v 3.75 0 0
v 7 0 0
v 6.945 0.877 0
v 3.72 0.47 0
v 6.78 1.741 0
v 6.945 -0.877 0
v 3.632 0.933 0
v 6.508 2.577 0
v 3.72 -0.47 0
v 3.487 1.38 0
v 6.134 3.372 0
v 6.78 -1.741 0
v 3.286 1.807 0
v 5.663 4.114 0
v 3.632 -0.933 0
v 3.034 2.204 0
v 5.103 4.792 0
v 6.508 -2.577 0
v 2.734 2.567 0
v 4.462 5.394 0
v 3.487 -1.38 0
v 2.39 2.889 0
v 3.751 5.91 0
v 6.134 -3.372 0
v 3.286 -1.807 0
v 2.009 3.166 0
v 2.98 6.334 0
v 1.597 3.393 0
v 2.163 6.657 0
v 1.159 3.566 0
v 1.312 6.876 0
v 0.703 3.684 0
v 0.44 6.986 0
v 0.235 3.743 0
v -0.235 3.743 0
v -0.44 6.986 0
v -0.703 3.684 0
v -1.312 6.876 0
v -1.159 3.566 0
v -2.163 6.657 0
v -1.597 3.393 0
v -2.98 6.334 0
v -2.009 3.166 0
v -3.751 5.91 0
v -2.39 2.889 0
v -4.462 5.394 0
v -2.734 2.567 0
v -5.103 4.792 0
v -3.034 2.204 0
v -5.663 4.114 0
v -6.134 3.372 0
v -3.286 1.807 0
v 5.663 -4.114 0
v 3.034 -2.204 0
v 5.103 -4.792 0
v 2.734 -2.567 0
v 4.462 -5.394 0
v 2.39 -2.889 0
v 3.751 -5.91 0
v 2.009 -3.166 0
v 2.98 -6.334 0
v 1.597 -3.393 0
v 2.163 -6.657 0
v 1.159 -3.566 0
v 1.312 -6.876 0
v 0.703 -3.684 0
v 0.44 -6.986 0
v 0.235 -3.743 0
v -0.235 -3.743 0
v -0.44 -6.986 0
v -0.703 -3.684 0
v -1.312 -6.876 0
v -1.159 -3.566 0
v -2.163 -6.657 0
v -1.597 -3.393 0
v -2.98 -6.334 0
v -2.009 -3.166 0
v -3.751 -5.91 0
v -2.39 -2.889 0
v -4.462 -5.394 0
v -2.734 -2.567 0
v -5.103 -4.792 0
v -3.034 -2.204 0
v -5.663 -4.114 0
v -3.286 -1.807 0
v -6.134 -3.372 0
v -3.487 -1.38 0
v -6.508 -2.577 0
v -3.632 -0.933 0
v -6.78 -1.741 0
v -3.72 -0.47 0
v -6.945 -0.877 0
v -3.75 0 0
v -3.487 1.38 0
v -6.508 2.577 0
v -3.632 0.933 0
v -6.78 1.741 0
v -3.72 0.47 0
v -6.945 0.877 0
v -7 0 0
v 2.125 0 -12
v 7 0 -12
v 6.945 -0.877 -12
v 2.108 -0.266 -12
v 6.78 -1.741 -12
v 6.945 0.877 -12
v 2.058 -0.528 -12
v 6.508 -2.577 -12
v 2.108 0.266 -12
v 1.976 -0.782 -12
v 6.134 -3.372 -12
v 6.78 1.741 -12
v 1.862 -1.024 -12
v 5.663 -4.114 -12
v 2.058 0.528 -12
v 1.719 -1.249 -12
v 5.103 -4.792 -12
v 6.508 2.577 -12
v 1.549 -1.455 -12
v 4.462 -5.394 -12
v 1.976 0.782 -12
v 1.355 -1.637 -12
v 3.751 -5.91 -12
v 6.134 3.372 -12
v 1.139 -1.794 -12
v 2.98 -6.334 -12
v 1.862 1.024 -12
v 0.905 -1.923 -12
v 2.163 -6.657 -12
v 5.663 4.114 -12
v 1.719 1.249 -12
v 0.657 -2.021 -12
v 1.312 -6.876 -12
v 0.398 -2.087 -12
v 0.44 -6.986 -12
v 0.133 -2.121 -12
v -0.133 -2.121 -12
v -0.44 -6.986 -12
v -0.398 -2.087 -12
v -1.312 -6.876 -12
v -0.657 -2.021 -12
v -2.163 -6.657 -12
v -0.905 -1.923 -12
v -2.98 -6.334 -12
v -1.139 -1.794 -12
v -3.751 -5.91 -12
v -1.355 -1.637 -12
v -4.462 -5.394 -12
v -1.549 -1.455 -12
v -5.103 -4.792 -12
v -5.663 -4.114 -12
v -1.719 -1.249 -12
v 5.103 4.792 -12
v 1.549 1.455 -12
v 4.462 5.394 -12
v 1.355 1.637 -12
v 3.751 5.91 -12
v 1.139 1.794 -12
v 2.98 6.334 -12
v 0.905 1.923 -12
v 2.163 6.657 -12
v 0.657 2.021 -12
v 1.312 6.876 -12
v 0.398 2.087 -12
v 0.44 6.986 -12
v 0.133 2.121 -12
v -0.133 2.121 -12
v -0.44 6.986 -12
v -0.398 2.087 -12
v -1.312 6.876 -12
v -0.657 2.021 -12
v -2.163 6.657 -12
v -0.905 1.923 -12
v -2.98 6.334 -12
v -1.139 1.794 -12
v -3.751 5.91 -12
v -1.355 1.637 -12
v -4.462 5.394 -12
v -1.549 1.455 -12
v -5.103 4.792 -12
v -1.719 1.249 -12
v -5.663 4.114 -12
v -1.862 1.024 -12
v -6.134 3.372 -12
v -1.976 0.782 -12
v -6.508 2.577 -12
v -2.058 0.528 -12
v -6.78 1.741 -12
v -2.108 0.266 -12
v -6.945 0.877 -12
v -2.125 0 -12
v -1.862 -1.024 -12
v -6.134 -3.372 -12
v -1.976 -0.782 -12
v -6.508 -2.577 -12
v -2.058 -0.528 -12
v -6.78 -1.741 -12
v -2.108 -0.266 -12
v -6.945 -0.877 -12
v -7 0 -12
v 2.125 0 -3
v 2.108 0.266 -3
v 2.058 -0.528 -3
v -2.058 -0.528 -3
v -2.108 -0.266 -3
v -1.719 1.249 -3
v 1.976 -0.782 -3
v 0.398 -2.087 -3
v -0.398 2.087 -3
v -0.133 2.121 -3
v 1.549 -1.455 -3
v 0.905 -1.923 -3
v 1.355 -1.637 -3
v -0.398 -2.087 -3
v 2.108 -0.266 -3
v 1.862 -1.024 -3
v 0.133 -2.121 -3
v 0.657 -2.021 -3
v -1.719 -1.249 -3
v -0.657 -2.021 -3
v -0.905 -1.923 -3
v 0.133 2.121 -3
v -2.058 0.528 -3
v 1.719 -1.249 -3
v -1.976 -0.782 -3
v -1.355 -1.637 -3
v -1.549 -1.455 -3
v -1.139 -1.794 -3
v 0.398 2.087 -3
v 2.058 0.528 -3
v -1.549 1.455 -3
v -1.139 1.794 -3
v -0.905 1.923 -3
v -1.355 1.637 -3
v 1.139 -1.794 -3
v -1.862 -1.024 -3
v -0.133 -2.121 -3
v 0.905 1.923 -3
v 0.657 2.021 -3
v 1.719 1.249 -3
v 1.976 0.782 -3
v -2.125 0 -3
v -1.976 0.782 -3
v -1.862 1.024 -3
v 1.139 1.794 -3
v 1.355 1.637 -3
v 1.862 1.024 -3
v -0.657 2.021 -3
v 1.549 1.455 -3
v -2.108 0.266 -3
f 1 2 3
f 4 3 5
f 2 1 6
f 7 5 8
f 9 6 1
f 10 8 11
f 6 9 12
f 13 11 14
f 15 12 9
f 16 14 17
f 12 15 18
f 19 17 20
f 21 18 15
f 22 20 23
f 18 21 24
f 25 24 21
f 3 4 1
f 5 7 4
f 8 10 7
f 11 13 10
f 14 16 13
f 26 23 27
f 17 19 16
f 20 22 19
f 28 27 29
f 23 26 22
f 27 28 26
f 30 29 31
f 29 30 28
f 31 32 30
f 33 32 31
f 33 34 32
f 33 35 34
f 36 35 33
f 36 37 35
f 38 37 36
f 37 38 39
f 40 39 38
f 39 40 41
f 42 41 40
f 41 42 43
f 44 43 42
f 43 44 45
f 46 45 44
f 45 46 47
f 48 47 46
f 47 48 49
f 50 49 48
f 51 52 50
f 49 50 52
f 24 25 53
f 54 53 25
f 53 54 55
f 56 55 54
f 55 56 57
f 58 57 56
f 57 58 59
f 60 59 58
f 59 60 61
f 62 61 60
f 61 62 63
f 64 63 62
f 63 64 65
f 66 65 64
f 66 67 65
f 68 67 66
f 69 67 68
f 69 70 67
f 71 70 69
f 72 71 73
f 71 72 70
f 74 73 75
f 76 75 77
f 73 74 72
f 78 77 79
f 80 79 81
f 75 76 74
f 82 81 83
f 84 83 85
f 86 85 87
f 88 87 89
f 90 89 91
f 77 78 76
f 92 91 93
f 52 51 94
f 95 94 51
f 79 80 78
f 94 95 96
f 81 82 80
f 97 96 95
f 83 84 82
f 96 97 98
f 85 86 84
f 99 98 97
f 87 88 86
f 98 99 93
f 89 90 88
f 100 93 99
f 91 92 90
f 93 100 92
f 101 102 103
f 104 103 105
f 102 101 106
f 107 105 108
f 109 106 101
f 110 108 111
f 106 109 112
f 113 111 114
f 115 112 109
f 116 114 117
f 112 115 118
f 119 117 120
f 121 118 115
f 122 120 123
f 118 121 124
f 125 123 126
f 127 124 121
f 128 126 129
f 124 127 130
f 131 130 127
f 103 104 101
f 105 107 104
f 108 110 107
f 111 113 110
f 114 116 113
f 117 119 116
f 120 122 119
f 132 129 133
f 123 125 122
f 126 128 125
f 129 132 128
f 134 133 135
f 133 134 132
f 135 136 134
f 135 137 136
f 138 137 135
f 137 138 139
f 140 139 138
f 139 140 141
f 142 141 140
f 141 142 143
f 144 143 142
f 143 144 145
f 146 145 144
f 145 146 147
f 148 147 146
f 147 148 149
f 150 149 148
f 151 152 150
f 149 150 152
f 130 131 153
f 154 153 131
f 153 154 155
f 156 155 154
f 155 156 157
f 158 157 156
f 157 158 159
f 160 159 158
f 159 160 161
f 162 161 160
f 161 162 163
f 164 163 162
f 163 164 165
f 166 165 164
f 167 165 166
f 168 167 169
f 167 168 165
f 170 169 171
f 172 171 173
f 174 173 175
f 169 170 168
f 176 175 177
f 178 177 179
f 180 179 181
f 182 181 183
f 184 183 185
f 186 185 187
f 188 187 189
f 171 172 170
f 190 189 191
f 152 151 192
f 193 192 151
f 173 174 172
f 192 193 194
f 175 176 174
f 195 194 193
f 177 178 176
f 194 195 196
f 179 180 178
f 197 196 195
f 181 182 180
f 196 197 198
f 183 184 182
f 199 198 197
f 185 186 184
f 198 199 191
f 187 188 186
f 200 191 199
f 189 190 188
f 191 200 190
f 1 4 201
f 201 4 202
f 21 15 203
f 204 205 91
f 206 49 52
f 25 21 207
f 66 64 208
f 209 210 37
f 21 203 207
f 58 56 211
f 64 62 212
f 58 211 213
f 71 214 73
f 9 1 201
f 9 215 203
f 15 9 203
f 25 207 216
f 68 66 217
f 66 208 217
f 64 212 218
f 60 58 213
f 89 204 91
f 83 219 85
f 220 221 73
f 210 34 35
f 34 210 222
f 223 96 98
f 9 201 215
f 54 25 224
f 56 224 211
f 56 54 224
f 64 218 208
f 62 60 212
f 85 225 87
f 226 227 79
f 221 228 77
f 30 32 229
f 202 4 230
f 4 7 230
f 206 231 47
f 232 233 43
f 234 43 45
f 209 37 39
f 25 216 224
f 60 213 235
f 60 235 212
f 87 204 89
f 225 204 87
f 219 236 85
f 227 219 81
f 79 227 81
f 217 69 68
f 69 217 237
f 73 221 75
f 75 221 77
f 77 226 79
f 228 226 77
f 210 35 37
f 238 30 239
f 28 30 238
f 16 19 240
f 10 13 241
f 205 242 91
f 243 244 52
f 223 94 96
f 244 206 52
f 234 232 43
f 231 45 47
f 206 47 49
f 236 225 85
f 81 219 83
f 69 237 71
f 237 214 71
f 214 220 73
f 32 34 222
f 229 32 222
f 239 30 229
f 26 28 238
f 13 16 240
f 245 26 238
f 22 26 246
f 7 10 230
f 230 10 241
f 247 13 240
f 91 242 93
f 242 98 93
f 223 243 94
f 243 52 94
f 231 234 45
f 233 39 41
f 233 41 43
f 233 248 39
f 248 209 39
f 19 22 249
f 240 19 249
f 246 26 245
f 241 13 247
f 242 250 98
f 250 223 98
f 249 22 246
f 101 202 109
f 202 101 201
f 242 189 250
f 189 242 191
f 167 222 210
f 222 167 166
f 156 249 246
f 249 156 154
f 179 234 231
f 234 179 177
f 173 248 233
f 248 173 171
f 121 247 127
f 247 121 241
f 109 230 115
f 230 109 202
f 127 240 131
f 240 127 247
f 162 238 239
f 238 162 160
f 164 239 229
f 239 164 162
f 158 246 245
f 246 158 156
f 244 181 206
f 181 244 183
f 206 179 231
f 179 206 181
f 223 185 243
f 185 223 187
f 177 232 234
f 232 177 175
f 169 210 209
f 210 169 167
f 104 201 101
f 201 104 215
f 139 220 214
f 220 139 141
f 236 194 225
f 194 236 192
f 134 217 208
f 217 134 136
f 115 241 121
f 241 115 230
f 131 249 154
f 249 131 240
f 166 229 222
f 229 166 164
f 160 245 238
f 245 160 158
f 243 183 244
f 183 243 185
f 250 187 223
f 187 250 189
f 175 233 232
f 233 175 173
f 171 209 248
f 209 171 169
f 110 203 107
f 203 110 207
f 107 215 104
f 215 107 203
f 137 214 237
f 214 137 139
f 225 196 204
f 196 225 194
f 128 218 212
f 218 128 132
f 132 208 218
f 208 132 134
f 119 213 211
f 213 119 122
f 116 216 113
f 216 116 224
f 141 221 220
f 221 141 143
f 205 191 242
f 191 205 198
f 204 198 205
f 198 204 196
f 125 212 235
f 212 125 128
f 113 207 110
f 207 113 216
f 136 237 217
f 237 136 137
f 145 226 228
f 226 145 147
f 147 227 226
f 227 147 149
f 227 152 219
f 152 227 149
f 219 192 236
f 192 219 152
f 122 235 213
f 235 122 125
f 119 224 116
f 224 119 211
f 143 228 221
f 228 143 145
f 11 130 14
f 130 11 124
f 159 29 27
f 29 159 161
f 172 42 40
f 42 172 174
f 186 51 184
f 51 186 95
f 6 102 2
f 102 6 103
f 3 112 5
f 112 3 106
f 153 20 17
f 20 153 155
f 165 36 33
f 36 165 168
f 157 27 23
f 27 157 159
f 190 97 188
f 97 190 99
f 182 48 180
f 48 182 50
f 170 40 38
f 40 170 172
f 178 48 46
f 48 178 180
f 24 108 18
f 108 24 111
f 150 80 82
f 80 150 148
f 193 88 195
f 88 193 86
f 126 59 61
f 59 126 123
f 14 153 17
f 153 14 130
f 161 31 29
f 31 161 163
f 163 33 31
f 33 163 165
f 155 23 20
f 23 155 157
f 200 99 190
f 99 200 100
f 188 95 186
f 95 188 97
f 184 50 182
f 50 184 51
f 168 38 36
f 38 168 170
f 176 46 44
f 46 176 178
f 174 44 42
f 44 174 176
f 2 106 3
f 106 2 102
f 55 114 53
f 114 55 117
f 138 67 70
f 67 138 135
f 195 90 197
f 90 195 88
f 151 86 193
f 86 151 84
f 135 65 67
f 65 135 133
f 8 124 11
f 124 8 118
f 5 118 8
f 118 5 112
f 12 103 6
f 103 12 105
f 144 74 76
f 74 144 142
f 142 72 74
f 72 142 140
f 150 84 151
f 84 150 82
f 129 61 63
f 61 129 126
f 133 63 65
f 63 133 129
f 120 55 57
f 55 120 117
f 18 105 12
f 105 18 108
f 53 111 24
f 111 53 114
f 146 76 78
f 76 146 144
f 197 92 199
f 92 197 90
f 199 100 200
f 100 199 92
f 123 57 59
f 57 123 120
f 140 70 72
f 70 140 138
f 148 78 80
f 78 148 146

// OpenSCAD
$fn = 50;


difference() {
	union() {
		translate(v = [0, 0, -12.0000000000]) {
			cylinder(h = 12, r = 7.0000000000);
		}
		cylinder(h = 0, r = 17.0000000000);
	}
	union() {
		translate(v = [0, 0, 0]) {
			rotate(a = [0, 0, 0]) {
				difference() {
					union() {
						#translate(v = [0, 0, -12.0000000000]) {
							cylinder(h = 12, r = 2.0000000000);
						}
						#translate(v = [0, 0, -3]) {
							cylinder(h = 3, r1 = 2.1250000000, r2 = 3.7500000000);
						}
						#translate(v = [0, 0, -12.0000000000]) {
							cylinder(h = 12, r = 2.1250000000);
						}
						#translate(v = [0, 0, -12.0000000000]) {
							cylinder(h = 12, r = 2.0000000000);
						}
					}
					union();
				}
			}
		}
	}
}
